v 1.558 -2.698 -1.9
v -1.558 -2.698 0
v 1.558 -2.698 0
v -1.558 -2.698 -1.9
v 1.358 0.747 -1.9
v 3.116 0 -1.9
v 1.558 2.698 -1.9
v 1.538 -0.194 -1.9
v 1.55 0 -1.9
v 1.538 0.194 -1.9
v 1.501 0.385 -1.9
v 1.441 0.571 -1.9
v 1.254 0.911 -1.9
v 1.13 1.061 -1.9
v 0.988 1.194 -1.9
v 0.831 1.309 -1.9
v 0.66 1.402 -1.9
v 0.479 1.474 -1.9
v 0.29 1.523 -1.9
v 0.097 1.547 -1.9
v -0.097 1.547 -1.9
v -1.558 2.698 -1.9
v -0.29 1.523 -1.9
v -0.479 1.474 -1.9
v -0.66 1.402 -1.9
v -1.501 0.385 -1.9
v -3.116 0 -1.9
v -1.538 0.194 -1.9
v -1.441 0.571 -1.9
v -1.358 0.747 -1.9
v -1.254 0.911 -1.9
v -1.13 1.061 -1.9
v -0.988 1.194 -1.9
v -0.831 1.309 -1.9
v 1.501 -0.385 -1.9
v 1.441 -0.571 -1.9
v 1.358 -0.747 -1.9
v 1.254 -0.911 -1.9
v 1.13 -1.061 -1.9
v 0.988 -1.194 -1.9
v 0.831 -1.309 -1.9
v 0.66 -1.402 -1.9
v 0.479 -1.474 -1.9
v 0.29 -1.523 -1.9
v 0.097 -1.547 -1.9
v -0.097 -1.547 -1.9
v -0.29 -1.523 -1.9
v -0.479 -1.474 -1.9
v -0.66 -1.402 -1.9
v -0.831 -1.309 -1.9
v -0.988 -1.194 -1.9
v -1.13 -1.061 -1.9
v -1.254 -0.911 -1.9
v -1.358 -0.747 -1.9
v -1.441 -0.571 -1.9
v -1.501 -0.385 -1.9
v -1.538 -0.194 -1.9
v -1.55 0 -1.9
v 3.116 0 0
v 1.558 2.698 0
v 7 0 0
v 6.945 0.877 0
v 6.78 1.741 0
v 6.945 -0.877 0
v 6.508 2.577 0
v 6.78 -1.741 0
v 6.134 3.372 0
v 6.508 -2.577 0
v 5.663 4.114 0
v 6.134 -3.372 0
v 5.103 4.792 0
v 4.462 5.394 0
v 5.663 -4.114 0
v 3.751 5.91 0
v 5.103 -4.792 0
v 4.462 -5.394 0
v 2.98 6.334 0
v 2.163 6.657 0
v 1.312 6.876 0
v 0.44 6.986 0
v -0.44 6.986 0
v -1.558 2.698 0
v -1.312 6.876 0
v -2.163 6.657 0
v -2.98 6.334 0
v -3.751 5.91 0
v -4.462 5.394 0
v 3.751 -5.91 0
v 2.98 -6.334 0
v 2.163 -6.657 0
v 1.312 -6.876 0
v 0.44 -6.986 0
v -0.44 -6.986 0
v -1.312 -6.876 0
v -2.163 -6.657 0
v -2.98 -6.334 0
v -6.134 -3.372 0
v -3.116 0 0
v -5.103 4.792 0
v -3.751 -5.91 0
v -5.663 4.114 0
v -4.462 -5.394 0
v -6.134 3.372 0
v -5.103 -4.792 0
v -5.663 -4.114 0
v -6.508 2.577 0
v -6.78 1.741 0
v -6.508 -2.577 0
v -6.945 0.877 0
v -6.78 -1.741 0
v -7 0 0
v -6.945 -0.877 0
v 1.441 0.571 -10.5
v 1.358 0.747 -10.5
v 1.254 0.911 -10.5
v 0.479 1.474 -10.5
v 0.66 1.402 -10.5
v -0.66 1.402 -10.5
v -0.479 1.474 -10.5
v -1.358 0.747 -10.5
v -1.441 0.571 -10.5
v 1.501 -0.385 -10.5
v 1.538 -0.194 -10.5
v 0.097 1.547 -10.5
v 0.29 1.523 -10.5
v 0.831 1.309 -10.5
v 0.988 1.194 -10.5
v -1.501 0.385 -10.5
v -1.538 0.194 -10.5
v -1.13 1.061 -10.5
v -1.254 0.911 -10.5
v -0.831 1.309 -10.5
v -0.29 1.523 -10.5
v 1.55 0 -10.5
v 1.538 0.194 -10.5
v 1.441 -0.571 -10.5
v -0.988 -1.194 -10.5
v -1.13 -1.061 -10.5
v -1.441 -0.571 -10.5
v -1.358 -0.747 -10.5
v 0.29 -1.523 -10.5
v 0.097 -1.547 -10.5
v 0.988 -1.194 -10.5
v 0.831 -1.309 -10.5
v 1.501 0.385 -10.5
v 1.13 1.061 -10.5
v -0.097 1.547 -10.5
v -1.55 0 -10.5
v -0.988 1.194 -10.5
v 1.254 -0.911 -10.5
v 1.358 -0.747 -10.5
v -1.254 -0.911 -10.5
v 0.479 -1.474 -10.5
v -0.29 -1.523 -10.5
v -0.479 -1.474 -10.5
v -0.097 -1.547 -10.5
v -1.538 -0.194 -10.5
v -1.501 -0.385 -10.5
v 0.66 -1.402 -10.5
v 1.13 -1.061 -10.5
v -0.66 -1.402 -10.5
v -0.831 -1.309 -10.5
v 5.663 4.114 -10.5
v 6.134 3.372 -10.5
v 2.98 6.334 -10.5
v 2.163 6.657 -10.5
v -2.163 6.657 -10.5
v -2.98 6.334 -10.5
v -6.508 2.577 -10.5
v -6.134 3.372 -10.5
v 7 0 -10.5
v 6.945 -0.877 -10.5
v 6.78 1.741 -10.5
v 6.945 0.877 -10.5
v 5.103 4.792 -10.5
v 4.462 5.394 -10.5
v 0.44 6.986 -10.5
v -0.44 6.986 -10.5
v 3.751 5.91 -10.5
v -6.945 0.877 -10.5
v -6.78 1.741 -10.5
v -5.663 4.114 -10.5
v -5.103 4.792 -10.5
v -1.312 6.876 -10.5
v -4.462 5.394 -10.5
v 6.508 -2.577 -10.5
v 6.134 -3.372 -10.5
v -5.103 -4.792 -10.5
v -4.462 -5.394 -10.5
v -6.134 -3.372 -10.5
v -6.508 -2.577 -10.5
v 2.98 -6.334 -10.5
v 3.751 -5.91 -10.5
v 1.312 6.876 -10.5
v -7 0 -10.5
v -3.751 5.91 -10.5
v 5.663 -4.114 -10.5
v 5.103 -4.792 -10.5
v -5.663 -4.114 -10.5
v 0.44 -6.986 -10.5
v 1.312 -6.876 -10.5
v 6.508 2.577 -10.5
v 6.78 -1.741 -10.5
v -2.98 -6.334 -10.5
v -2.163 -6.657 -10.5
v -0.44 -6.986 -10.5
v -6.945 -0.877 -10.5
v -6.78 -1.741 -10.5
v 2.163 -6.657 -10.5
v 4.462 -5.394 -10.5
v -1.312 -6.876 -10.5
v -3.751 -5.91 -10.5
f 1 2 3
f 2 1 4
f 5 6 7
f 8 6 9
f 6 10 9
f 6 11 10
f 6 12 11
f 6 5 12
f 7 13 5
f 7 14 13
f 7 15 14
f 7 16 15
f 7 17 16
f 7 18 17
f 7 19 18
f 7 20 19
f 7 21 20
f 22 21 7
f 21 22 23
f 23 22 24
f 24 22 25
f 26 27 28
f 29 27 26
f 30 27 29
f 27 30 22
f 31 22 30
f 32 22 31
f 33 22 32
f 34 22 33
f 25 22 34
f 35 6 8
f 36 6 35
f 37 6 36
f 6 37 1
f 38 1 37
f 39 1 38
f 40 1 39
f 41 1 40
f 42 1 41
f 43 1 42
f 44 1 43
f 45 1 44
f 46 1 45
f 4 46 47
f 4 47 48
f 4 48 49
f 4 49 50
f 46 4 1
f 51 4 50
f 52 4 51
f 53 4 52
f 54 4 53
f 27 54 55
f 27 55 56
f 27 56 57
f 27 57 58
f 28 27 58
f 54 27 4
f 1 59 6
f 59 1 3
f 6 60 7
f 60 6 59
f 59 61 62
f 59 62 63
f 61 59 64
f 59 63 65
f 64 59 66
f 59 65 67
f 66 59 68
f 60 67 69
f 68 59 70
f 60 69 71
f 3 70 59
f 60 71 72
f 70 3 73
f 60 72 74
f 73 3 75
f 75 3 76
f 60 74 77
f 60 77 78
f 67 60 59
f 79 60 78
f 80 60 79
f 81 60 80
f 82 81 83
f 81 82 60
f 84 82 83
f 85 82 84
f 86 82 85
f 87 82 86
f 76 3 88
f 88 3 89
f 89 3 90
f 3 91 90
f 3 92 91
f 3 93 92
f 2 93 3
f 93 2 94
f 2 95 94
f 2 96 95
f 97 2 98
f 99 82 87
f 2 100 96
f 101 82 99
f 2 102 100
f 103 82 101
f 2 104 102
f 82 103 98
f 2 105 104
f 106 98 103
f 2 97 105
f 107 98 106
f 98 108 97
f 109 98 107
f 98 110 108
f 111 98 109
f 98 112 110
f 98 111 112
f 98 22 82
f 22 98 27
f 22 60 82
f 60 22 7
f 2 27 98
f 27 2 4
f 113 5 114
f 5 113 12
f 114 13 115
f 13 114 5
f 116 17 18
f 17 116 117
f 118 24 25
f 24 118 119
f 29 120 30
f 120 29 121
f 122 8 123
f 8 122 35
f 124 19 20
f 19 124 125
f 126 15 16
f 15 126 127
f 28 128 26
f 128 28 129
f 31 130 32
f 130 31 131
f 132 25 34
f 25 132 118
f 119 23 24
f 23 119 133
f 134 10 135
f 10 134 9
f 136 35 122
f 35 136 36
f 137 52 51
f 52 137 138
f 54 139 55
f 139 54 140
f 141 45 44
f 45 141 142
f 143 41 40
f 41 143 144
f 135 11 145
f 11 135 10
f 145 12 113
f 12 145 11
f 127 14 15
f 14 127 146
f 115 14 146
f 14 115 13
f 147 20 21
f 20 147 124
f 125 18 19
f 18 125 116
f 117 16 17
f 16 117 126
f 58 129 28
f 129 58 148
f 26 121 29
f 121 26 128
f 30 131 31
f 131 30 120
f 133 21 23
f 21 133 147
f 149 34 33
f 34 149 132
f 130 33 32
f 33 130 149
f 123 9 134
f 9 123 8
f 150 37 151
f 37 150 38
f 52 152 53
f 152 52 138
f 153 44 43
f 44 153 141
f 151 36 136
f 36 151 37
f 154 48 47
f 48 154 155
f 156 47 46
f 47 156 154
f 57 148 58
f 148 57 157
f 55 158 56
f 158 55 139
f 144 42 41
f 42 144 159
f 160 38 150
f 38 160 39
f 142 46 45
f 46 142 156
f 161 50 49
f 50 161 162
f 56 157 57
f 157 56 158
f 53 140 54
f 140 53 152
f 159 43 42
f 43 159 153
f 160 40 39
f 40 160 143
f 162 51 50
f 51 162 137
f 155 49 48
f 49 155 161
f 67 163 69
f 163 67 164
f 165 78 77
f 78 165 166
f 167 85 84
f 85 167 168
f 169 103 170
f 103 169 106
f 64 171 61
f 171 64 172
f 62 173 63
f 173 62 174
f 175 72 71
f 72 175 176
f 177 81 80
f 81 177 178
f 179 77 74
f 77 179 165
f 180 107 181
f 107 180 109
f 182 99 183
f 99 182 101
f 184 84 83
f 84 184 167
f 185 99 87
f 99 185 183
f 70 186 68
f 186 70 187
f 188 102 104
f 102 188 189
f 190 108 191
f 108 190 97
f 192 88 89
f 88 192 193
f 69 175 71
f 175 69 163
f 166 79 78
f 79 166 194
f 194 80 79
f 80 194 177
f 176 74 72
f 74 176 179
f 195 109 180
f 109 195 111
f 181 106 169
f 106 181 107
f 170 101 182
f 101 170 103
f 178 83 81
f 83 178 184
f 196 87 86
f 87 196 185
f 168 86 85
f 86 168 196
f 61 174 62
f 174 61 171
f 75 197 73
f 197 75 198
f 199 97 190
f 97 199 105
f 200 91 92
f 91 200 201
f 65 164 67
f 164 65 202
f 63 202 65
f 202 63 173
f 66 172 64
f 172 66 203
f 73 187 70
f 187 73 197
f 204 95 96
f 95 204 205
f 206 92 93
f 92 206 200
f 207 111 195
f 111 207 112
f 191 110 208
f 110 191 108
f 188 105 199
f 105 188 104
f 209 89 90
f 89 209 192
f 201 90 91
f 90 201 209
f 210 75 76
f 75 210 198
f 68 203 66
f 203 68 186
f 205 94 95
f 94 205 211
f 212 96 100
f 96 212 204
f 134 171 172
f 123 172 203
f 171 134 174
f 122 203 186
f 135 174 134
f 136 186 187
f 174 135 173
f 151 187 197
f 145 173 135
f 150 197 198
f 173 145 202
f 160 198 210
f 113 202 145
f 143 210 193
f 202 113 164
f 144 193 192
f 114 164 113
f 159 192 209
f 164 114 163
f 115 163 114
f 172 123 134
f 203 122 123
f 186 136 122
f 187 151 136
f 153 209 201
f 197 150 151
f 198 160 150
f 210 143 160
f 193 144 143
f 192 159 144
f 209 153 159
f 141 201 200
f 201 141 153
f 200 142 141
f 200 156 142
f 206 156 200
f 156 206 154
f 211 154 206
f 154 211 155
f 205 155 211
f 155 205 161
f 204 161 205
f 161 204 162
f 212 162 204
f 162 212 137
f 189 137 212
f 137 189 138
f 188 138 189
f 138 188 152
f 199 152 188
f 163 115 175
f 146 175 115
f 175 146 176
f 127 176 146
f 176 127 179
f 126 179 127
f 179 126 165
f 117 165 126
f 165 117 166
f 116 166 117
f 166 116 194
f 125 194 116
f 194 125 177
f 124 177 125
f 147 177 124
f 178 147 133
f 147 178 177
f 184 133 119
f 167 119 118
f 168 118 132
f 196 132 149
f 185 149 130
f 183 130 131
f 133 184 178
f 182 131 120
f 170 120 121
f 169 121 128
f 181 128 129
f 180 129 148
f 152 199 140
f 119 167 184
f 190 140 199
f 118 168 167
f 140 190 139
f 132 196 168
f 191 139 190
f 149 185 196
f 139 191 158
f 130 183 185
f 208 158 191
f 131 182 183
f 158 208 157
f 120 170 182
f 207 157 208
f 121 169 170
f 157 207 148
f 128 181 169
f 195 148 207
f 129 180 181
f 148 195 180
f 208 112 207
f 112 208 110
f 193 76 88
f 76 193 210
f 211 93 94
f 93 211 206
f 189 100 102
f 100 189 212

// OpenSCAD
$fn = 50;


difference() {
	union() {
		translate(v = [0, 0, -10.5000000000]) {
			cylinder(h = 10.5000000000, r = 7.0000000000);
		}
	}
	union() {
		translate(v = [0, 0, 0]) {
			rotate(a = [0, 0, 0]) {
				difference() {
					union() {
						translate(v = [0, 0, -1.9000000000]) {
							linear_extrude(height = 1.9000000000) {
								polygon(points = [[3.1158000000, 0.0000000000], [1.5579000000, 2.6983619531], [-1.5579000000, 2.6983619531], [-3.1158000000, 0.0000000000], [-1.5579000000, -2.6983619531], [1.5579000000, -2.6983619531]]);
							}
						}
					}
					union();
				}
			}
		}
		#translate(v = [0, 0, -100.0000000000]) {
			cylinder(h = 200, r = 1.5500000000);
		}
	}
}
